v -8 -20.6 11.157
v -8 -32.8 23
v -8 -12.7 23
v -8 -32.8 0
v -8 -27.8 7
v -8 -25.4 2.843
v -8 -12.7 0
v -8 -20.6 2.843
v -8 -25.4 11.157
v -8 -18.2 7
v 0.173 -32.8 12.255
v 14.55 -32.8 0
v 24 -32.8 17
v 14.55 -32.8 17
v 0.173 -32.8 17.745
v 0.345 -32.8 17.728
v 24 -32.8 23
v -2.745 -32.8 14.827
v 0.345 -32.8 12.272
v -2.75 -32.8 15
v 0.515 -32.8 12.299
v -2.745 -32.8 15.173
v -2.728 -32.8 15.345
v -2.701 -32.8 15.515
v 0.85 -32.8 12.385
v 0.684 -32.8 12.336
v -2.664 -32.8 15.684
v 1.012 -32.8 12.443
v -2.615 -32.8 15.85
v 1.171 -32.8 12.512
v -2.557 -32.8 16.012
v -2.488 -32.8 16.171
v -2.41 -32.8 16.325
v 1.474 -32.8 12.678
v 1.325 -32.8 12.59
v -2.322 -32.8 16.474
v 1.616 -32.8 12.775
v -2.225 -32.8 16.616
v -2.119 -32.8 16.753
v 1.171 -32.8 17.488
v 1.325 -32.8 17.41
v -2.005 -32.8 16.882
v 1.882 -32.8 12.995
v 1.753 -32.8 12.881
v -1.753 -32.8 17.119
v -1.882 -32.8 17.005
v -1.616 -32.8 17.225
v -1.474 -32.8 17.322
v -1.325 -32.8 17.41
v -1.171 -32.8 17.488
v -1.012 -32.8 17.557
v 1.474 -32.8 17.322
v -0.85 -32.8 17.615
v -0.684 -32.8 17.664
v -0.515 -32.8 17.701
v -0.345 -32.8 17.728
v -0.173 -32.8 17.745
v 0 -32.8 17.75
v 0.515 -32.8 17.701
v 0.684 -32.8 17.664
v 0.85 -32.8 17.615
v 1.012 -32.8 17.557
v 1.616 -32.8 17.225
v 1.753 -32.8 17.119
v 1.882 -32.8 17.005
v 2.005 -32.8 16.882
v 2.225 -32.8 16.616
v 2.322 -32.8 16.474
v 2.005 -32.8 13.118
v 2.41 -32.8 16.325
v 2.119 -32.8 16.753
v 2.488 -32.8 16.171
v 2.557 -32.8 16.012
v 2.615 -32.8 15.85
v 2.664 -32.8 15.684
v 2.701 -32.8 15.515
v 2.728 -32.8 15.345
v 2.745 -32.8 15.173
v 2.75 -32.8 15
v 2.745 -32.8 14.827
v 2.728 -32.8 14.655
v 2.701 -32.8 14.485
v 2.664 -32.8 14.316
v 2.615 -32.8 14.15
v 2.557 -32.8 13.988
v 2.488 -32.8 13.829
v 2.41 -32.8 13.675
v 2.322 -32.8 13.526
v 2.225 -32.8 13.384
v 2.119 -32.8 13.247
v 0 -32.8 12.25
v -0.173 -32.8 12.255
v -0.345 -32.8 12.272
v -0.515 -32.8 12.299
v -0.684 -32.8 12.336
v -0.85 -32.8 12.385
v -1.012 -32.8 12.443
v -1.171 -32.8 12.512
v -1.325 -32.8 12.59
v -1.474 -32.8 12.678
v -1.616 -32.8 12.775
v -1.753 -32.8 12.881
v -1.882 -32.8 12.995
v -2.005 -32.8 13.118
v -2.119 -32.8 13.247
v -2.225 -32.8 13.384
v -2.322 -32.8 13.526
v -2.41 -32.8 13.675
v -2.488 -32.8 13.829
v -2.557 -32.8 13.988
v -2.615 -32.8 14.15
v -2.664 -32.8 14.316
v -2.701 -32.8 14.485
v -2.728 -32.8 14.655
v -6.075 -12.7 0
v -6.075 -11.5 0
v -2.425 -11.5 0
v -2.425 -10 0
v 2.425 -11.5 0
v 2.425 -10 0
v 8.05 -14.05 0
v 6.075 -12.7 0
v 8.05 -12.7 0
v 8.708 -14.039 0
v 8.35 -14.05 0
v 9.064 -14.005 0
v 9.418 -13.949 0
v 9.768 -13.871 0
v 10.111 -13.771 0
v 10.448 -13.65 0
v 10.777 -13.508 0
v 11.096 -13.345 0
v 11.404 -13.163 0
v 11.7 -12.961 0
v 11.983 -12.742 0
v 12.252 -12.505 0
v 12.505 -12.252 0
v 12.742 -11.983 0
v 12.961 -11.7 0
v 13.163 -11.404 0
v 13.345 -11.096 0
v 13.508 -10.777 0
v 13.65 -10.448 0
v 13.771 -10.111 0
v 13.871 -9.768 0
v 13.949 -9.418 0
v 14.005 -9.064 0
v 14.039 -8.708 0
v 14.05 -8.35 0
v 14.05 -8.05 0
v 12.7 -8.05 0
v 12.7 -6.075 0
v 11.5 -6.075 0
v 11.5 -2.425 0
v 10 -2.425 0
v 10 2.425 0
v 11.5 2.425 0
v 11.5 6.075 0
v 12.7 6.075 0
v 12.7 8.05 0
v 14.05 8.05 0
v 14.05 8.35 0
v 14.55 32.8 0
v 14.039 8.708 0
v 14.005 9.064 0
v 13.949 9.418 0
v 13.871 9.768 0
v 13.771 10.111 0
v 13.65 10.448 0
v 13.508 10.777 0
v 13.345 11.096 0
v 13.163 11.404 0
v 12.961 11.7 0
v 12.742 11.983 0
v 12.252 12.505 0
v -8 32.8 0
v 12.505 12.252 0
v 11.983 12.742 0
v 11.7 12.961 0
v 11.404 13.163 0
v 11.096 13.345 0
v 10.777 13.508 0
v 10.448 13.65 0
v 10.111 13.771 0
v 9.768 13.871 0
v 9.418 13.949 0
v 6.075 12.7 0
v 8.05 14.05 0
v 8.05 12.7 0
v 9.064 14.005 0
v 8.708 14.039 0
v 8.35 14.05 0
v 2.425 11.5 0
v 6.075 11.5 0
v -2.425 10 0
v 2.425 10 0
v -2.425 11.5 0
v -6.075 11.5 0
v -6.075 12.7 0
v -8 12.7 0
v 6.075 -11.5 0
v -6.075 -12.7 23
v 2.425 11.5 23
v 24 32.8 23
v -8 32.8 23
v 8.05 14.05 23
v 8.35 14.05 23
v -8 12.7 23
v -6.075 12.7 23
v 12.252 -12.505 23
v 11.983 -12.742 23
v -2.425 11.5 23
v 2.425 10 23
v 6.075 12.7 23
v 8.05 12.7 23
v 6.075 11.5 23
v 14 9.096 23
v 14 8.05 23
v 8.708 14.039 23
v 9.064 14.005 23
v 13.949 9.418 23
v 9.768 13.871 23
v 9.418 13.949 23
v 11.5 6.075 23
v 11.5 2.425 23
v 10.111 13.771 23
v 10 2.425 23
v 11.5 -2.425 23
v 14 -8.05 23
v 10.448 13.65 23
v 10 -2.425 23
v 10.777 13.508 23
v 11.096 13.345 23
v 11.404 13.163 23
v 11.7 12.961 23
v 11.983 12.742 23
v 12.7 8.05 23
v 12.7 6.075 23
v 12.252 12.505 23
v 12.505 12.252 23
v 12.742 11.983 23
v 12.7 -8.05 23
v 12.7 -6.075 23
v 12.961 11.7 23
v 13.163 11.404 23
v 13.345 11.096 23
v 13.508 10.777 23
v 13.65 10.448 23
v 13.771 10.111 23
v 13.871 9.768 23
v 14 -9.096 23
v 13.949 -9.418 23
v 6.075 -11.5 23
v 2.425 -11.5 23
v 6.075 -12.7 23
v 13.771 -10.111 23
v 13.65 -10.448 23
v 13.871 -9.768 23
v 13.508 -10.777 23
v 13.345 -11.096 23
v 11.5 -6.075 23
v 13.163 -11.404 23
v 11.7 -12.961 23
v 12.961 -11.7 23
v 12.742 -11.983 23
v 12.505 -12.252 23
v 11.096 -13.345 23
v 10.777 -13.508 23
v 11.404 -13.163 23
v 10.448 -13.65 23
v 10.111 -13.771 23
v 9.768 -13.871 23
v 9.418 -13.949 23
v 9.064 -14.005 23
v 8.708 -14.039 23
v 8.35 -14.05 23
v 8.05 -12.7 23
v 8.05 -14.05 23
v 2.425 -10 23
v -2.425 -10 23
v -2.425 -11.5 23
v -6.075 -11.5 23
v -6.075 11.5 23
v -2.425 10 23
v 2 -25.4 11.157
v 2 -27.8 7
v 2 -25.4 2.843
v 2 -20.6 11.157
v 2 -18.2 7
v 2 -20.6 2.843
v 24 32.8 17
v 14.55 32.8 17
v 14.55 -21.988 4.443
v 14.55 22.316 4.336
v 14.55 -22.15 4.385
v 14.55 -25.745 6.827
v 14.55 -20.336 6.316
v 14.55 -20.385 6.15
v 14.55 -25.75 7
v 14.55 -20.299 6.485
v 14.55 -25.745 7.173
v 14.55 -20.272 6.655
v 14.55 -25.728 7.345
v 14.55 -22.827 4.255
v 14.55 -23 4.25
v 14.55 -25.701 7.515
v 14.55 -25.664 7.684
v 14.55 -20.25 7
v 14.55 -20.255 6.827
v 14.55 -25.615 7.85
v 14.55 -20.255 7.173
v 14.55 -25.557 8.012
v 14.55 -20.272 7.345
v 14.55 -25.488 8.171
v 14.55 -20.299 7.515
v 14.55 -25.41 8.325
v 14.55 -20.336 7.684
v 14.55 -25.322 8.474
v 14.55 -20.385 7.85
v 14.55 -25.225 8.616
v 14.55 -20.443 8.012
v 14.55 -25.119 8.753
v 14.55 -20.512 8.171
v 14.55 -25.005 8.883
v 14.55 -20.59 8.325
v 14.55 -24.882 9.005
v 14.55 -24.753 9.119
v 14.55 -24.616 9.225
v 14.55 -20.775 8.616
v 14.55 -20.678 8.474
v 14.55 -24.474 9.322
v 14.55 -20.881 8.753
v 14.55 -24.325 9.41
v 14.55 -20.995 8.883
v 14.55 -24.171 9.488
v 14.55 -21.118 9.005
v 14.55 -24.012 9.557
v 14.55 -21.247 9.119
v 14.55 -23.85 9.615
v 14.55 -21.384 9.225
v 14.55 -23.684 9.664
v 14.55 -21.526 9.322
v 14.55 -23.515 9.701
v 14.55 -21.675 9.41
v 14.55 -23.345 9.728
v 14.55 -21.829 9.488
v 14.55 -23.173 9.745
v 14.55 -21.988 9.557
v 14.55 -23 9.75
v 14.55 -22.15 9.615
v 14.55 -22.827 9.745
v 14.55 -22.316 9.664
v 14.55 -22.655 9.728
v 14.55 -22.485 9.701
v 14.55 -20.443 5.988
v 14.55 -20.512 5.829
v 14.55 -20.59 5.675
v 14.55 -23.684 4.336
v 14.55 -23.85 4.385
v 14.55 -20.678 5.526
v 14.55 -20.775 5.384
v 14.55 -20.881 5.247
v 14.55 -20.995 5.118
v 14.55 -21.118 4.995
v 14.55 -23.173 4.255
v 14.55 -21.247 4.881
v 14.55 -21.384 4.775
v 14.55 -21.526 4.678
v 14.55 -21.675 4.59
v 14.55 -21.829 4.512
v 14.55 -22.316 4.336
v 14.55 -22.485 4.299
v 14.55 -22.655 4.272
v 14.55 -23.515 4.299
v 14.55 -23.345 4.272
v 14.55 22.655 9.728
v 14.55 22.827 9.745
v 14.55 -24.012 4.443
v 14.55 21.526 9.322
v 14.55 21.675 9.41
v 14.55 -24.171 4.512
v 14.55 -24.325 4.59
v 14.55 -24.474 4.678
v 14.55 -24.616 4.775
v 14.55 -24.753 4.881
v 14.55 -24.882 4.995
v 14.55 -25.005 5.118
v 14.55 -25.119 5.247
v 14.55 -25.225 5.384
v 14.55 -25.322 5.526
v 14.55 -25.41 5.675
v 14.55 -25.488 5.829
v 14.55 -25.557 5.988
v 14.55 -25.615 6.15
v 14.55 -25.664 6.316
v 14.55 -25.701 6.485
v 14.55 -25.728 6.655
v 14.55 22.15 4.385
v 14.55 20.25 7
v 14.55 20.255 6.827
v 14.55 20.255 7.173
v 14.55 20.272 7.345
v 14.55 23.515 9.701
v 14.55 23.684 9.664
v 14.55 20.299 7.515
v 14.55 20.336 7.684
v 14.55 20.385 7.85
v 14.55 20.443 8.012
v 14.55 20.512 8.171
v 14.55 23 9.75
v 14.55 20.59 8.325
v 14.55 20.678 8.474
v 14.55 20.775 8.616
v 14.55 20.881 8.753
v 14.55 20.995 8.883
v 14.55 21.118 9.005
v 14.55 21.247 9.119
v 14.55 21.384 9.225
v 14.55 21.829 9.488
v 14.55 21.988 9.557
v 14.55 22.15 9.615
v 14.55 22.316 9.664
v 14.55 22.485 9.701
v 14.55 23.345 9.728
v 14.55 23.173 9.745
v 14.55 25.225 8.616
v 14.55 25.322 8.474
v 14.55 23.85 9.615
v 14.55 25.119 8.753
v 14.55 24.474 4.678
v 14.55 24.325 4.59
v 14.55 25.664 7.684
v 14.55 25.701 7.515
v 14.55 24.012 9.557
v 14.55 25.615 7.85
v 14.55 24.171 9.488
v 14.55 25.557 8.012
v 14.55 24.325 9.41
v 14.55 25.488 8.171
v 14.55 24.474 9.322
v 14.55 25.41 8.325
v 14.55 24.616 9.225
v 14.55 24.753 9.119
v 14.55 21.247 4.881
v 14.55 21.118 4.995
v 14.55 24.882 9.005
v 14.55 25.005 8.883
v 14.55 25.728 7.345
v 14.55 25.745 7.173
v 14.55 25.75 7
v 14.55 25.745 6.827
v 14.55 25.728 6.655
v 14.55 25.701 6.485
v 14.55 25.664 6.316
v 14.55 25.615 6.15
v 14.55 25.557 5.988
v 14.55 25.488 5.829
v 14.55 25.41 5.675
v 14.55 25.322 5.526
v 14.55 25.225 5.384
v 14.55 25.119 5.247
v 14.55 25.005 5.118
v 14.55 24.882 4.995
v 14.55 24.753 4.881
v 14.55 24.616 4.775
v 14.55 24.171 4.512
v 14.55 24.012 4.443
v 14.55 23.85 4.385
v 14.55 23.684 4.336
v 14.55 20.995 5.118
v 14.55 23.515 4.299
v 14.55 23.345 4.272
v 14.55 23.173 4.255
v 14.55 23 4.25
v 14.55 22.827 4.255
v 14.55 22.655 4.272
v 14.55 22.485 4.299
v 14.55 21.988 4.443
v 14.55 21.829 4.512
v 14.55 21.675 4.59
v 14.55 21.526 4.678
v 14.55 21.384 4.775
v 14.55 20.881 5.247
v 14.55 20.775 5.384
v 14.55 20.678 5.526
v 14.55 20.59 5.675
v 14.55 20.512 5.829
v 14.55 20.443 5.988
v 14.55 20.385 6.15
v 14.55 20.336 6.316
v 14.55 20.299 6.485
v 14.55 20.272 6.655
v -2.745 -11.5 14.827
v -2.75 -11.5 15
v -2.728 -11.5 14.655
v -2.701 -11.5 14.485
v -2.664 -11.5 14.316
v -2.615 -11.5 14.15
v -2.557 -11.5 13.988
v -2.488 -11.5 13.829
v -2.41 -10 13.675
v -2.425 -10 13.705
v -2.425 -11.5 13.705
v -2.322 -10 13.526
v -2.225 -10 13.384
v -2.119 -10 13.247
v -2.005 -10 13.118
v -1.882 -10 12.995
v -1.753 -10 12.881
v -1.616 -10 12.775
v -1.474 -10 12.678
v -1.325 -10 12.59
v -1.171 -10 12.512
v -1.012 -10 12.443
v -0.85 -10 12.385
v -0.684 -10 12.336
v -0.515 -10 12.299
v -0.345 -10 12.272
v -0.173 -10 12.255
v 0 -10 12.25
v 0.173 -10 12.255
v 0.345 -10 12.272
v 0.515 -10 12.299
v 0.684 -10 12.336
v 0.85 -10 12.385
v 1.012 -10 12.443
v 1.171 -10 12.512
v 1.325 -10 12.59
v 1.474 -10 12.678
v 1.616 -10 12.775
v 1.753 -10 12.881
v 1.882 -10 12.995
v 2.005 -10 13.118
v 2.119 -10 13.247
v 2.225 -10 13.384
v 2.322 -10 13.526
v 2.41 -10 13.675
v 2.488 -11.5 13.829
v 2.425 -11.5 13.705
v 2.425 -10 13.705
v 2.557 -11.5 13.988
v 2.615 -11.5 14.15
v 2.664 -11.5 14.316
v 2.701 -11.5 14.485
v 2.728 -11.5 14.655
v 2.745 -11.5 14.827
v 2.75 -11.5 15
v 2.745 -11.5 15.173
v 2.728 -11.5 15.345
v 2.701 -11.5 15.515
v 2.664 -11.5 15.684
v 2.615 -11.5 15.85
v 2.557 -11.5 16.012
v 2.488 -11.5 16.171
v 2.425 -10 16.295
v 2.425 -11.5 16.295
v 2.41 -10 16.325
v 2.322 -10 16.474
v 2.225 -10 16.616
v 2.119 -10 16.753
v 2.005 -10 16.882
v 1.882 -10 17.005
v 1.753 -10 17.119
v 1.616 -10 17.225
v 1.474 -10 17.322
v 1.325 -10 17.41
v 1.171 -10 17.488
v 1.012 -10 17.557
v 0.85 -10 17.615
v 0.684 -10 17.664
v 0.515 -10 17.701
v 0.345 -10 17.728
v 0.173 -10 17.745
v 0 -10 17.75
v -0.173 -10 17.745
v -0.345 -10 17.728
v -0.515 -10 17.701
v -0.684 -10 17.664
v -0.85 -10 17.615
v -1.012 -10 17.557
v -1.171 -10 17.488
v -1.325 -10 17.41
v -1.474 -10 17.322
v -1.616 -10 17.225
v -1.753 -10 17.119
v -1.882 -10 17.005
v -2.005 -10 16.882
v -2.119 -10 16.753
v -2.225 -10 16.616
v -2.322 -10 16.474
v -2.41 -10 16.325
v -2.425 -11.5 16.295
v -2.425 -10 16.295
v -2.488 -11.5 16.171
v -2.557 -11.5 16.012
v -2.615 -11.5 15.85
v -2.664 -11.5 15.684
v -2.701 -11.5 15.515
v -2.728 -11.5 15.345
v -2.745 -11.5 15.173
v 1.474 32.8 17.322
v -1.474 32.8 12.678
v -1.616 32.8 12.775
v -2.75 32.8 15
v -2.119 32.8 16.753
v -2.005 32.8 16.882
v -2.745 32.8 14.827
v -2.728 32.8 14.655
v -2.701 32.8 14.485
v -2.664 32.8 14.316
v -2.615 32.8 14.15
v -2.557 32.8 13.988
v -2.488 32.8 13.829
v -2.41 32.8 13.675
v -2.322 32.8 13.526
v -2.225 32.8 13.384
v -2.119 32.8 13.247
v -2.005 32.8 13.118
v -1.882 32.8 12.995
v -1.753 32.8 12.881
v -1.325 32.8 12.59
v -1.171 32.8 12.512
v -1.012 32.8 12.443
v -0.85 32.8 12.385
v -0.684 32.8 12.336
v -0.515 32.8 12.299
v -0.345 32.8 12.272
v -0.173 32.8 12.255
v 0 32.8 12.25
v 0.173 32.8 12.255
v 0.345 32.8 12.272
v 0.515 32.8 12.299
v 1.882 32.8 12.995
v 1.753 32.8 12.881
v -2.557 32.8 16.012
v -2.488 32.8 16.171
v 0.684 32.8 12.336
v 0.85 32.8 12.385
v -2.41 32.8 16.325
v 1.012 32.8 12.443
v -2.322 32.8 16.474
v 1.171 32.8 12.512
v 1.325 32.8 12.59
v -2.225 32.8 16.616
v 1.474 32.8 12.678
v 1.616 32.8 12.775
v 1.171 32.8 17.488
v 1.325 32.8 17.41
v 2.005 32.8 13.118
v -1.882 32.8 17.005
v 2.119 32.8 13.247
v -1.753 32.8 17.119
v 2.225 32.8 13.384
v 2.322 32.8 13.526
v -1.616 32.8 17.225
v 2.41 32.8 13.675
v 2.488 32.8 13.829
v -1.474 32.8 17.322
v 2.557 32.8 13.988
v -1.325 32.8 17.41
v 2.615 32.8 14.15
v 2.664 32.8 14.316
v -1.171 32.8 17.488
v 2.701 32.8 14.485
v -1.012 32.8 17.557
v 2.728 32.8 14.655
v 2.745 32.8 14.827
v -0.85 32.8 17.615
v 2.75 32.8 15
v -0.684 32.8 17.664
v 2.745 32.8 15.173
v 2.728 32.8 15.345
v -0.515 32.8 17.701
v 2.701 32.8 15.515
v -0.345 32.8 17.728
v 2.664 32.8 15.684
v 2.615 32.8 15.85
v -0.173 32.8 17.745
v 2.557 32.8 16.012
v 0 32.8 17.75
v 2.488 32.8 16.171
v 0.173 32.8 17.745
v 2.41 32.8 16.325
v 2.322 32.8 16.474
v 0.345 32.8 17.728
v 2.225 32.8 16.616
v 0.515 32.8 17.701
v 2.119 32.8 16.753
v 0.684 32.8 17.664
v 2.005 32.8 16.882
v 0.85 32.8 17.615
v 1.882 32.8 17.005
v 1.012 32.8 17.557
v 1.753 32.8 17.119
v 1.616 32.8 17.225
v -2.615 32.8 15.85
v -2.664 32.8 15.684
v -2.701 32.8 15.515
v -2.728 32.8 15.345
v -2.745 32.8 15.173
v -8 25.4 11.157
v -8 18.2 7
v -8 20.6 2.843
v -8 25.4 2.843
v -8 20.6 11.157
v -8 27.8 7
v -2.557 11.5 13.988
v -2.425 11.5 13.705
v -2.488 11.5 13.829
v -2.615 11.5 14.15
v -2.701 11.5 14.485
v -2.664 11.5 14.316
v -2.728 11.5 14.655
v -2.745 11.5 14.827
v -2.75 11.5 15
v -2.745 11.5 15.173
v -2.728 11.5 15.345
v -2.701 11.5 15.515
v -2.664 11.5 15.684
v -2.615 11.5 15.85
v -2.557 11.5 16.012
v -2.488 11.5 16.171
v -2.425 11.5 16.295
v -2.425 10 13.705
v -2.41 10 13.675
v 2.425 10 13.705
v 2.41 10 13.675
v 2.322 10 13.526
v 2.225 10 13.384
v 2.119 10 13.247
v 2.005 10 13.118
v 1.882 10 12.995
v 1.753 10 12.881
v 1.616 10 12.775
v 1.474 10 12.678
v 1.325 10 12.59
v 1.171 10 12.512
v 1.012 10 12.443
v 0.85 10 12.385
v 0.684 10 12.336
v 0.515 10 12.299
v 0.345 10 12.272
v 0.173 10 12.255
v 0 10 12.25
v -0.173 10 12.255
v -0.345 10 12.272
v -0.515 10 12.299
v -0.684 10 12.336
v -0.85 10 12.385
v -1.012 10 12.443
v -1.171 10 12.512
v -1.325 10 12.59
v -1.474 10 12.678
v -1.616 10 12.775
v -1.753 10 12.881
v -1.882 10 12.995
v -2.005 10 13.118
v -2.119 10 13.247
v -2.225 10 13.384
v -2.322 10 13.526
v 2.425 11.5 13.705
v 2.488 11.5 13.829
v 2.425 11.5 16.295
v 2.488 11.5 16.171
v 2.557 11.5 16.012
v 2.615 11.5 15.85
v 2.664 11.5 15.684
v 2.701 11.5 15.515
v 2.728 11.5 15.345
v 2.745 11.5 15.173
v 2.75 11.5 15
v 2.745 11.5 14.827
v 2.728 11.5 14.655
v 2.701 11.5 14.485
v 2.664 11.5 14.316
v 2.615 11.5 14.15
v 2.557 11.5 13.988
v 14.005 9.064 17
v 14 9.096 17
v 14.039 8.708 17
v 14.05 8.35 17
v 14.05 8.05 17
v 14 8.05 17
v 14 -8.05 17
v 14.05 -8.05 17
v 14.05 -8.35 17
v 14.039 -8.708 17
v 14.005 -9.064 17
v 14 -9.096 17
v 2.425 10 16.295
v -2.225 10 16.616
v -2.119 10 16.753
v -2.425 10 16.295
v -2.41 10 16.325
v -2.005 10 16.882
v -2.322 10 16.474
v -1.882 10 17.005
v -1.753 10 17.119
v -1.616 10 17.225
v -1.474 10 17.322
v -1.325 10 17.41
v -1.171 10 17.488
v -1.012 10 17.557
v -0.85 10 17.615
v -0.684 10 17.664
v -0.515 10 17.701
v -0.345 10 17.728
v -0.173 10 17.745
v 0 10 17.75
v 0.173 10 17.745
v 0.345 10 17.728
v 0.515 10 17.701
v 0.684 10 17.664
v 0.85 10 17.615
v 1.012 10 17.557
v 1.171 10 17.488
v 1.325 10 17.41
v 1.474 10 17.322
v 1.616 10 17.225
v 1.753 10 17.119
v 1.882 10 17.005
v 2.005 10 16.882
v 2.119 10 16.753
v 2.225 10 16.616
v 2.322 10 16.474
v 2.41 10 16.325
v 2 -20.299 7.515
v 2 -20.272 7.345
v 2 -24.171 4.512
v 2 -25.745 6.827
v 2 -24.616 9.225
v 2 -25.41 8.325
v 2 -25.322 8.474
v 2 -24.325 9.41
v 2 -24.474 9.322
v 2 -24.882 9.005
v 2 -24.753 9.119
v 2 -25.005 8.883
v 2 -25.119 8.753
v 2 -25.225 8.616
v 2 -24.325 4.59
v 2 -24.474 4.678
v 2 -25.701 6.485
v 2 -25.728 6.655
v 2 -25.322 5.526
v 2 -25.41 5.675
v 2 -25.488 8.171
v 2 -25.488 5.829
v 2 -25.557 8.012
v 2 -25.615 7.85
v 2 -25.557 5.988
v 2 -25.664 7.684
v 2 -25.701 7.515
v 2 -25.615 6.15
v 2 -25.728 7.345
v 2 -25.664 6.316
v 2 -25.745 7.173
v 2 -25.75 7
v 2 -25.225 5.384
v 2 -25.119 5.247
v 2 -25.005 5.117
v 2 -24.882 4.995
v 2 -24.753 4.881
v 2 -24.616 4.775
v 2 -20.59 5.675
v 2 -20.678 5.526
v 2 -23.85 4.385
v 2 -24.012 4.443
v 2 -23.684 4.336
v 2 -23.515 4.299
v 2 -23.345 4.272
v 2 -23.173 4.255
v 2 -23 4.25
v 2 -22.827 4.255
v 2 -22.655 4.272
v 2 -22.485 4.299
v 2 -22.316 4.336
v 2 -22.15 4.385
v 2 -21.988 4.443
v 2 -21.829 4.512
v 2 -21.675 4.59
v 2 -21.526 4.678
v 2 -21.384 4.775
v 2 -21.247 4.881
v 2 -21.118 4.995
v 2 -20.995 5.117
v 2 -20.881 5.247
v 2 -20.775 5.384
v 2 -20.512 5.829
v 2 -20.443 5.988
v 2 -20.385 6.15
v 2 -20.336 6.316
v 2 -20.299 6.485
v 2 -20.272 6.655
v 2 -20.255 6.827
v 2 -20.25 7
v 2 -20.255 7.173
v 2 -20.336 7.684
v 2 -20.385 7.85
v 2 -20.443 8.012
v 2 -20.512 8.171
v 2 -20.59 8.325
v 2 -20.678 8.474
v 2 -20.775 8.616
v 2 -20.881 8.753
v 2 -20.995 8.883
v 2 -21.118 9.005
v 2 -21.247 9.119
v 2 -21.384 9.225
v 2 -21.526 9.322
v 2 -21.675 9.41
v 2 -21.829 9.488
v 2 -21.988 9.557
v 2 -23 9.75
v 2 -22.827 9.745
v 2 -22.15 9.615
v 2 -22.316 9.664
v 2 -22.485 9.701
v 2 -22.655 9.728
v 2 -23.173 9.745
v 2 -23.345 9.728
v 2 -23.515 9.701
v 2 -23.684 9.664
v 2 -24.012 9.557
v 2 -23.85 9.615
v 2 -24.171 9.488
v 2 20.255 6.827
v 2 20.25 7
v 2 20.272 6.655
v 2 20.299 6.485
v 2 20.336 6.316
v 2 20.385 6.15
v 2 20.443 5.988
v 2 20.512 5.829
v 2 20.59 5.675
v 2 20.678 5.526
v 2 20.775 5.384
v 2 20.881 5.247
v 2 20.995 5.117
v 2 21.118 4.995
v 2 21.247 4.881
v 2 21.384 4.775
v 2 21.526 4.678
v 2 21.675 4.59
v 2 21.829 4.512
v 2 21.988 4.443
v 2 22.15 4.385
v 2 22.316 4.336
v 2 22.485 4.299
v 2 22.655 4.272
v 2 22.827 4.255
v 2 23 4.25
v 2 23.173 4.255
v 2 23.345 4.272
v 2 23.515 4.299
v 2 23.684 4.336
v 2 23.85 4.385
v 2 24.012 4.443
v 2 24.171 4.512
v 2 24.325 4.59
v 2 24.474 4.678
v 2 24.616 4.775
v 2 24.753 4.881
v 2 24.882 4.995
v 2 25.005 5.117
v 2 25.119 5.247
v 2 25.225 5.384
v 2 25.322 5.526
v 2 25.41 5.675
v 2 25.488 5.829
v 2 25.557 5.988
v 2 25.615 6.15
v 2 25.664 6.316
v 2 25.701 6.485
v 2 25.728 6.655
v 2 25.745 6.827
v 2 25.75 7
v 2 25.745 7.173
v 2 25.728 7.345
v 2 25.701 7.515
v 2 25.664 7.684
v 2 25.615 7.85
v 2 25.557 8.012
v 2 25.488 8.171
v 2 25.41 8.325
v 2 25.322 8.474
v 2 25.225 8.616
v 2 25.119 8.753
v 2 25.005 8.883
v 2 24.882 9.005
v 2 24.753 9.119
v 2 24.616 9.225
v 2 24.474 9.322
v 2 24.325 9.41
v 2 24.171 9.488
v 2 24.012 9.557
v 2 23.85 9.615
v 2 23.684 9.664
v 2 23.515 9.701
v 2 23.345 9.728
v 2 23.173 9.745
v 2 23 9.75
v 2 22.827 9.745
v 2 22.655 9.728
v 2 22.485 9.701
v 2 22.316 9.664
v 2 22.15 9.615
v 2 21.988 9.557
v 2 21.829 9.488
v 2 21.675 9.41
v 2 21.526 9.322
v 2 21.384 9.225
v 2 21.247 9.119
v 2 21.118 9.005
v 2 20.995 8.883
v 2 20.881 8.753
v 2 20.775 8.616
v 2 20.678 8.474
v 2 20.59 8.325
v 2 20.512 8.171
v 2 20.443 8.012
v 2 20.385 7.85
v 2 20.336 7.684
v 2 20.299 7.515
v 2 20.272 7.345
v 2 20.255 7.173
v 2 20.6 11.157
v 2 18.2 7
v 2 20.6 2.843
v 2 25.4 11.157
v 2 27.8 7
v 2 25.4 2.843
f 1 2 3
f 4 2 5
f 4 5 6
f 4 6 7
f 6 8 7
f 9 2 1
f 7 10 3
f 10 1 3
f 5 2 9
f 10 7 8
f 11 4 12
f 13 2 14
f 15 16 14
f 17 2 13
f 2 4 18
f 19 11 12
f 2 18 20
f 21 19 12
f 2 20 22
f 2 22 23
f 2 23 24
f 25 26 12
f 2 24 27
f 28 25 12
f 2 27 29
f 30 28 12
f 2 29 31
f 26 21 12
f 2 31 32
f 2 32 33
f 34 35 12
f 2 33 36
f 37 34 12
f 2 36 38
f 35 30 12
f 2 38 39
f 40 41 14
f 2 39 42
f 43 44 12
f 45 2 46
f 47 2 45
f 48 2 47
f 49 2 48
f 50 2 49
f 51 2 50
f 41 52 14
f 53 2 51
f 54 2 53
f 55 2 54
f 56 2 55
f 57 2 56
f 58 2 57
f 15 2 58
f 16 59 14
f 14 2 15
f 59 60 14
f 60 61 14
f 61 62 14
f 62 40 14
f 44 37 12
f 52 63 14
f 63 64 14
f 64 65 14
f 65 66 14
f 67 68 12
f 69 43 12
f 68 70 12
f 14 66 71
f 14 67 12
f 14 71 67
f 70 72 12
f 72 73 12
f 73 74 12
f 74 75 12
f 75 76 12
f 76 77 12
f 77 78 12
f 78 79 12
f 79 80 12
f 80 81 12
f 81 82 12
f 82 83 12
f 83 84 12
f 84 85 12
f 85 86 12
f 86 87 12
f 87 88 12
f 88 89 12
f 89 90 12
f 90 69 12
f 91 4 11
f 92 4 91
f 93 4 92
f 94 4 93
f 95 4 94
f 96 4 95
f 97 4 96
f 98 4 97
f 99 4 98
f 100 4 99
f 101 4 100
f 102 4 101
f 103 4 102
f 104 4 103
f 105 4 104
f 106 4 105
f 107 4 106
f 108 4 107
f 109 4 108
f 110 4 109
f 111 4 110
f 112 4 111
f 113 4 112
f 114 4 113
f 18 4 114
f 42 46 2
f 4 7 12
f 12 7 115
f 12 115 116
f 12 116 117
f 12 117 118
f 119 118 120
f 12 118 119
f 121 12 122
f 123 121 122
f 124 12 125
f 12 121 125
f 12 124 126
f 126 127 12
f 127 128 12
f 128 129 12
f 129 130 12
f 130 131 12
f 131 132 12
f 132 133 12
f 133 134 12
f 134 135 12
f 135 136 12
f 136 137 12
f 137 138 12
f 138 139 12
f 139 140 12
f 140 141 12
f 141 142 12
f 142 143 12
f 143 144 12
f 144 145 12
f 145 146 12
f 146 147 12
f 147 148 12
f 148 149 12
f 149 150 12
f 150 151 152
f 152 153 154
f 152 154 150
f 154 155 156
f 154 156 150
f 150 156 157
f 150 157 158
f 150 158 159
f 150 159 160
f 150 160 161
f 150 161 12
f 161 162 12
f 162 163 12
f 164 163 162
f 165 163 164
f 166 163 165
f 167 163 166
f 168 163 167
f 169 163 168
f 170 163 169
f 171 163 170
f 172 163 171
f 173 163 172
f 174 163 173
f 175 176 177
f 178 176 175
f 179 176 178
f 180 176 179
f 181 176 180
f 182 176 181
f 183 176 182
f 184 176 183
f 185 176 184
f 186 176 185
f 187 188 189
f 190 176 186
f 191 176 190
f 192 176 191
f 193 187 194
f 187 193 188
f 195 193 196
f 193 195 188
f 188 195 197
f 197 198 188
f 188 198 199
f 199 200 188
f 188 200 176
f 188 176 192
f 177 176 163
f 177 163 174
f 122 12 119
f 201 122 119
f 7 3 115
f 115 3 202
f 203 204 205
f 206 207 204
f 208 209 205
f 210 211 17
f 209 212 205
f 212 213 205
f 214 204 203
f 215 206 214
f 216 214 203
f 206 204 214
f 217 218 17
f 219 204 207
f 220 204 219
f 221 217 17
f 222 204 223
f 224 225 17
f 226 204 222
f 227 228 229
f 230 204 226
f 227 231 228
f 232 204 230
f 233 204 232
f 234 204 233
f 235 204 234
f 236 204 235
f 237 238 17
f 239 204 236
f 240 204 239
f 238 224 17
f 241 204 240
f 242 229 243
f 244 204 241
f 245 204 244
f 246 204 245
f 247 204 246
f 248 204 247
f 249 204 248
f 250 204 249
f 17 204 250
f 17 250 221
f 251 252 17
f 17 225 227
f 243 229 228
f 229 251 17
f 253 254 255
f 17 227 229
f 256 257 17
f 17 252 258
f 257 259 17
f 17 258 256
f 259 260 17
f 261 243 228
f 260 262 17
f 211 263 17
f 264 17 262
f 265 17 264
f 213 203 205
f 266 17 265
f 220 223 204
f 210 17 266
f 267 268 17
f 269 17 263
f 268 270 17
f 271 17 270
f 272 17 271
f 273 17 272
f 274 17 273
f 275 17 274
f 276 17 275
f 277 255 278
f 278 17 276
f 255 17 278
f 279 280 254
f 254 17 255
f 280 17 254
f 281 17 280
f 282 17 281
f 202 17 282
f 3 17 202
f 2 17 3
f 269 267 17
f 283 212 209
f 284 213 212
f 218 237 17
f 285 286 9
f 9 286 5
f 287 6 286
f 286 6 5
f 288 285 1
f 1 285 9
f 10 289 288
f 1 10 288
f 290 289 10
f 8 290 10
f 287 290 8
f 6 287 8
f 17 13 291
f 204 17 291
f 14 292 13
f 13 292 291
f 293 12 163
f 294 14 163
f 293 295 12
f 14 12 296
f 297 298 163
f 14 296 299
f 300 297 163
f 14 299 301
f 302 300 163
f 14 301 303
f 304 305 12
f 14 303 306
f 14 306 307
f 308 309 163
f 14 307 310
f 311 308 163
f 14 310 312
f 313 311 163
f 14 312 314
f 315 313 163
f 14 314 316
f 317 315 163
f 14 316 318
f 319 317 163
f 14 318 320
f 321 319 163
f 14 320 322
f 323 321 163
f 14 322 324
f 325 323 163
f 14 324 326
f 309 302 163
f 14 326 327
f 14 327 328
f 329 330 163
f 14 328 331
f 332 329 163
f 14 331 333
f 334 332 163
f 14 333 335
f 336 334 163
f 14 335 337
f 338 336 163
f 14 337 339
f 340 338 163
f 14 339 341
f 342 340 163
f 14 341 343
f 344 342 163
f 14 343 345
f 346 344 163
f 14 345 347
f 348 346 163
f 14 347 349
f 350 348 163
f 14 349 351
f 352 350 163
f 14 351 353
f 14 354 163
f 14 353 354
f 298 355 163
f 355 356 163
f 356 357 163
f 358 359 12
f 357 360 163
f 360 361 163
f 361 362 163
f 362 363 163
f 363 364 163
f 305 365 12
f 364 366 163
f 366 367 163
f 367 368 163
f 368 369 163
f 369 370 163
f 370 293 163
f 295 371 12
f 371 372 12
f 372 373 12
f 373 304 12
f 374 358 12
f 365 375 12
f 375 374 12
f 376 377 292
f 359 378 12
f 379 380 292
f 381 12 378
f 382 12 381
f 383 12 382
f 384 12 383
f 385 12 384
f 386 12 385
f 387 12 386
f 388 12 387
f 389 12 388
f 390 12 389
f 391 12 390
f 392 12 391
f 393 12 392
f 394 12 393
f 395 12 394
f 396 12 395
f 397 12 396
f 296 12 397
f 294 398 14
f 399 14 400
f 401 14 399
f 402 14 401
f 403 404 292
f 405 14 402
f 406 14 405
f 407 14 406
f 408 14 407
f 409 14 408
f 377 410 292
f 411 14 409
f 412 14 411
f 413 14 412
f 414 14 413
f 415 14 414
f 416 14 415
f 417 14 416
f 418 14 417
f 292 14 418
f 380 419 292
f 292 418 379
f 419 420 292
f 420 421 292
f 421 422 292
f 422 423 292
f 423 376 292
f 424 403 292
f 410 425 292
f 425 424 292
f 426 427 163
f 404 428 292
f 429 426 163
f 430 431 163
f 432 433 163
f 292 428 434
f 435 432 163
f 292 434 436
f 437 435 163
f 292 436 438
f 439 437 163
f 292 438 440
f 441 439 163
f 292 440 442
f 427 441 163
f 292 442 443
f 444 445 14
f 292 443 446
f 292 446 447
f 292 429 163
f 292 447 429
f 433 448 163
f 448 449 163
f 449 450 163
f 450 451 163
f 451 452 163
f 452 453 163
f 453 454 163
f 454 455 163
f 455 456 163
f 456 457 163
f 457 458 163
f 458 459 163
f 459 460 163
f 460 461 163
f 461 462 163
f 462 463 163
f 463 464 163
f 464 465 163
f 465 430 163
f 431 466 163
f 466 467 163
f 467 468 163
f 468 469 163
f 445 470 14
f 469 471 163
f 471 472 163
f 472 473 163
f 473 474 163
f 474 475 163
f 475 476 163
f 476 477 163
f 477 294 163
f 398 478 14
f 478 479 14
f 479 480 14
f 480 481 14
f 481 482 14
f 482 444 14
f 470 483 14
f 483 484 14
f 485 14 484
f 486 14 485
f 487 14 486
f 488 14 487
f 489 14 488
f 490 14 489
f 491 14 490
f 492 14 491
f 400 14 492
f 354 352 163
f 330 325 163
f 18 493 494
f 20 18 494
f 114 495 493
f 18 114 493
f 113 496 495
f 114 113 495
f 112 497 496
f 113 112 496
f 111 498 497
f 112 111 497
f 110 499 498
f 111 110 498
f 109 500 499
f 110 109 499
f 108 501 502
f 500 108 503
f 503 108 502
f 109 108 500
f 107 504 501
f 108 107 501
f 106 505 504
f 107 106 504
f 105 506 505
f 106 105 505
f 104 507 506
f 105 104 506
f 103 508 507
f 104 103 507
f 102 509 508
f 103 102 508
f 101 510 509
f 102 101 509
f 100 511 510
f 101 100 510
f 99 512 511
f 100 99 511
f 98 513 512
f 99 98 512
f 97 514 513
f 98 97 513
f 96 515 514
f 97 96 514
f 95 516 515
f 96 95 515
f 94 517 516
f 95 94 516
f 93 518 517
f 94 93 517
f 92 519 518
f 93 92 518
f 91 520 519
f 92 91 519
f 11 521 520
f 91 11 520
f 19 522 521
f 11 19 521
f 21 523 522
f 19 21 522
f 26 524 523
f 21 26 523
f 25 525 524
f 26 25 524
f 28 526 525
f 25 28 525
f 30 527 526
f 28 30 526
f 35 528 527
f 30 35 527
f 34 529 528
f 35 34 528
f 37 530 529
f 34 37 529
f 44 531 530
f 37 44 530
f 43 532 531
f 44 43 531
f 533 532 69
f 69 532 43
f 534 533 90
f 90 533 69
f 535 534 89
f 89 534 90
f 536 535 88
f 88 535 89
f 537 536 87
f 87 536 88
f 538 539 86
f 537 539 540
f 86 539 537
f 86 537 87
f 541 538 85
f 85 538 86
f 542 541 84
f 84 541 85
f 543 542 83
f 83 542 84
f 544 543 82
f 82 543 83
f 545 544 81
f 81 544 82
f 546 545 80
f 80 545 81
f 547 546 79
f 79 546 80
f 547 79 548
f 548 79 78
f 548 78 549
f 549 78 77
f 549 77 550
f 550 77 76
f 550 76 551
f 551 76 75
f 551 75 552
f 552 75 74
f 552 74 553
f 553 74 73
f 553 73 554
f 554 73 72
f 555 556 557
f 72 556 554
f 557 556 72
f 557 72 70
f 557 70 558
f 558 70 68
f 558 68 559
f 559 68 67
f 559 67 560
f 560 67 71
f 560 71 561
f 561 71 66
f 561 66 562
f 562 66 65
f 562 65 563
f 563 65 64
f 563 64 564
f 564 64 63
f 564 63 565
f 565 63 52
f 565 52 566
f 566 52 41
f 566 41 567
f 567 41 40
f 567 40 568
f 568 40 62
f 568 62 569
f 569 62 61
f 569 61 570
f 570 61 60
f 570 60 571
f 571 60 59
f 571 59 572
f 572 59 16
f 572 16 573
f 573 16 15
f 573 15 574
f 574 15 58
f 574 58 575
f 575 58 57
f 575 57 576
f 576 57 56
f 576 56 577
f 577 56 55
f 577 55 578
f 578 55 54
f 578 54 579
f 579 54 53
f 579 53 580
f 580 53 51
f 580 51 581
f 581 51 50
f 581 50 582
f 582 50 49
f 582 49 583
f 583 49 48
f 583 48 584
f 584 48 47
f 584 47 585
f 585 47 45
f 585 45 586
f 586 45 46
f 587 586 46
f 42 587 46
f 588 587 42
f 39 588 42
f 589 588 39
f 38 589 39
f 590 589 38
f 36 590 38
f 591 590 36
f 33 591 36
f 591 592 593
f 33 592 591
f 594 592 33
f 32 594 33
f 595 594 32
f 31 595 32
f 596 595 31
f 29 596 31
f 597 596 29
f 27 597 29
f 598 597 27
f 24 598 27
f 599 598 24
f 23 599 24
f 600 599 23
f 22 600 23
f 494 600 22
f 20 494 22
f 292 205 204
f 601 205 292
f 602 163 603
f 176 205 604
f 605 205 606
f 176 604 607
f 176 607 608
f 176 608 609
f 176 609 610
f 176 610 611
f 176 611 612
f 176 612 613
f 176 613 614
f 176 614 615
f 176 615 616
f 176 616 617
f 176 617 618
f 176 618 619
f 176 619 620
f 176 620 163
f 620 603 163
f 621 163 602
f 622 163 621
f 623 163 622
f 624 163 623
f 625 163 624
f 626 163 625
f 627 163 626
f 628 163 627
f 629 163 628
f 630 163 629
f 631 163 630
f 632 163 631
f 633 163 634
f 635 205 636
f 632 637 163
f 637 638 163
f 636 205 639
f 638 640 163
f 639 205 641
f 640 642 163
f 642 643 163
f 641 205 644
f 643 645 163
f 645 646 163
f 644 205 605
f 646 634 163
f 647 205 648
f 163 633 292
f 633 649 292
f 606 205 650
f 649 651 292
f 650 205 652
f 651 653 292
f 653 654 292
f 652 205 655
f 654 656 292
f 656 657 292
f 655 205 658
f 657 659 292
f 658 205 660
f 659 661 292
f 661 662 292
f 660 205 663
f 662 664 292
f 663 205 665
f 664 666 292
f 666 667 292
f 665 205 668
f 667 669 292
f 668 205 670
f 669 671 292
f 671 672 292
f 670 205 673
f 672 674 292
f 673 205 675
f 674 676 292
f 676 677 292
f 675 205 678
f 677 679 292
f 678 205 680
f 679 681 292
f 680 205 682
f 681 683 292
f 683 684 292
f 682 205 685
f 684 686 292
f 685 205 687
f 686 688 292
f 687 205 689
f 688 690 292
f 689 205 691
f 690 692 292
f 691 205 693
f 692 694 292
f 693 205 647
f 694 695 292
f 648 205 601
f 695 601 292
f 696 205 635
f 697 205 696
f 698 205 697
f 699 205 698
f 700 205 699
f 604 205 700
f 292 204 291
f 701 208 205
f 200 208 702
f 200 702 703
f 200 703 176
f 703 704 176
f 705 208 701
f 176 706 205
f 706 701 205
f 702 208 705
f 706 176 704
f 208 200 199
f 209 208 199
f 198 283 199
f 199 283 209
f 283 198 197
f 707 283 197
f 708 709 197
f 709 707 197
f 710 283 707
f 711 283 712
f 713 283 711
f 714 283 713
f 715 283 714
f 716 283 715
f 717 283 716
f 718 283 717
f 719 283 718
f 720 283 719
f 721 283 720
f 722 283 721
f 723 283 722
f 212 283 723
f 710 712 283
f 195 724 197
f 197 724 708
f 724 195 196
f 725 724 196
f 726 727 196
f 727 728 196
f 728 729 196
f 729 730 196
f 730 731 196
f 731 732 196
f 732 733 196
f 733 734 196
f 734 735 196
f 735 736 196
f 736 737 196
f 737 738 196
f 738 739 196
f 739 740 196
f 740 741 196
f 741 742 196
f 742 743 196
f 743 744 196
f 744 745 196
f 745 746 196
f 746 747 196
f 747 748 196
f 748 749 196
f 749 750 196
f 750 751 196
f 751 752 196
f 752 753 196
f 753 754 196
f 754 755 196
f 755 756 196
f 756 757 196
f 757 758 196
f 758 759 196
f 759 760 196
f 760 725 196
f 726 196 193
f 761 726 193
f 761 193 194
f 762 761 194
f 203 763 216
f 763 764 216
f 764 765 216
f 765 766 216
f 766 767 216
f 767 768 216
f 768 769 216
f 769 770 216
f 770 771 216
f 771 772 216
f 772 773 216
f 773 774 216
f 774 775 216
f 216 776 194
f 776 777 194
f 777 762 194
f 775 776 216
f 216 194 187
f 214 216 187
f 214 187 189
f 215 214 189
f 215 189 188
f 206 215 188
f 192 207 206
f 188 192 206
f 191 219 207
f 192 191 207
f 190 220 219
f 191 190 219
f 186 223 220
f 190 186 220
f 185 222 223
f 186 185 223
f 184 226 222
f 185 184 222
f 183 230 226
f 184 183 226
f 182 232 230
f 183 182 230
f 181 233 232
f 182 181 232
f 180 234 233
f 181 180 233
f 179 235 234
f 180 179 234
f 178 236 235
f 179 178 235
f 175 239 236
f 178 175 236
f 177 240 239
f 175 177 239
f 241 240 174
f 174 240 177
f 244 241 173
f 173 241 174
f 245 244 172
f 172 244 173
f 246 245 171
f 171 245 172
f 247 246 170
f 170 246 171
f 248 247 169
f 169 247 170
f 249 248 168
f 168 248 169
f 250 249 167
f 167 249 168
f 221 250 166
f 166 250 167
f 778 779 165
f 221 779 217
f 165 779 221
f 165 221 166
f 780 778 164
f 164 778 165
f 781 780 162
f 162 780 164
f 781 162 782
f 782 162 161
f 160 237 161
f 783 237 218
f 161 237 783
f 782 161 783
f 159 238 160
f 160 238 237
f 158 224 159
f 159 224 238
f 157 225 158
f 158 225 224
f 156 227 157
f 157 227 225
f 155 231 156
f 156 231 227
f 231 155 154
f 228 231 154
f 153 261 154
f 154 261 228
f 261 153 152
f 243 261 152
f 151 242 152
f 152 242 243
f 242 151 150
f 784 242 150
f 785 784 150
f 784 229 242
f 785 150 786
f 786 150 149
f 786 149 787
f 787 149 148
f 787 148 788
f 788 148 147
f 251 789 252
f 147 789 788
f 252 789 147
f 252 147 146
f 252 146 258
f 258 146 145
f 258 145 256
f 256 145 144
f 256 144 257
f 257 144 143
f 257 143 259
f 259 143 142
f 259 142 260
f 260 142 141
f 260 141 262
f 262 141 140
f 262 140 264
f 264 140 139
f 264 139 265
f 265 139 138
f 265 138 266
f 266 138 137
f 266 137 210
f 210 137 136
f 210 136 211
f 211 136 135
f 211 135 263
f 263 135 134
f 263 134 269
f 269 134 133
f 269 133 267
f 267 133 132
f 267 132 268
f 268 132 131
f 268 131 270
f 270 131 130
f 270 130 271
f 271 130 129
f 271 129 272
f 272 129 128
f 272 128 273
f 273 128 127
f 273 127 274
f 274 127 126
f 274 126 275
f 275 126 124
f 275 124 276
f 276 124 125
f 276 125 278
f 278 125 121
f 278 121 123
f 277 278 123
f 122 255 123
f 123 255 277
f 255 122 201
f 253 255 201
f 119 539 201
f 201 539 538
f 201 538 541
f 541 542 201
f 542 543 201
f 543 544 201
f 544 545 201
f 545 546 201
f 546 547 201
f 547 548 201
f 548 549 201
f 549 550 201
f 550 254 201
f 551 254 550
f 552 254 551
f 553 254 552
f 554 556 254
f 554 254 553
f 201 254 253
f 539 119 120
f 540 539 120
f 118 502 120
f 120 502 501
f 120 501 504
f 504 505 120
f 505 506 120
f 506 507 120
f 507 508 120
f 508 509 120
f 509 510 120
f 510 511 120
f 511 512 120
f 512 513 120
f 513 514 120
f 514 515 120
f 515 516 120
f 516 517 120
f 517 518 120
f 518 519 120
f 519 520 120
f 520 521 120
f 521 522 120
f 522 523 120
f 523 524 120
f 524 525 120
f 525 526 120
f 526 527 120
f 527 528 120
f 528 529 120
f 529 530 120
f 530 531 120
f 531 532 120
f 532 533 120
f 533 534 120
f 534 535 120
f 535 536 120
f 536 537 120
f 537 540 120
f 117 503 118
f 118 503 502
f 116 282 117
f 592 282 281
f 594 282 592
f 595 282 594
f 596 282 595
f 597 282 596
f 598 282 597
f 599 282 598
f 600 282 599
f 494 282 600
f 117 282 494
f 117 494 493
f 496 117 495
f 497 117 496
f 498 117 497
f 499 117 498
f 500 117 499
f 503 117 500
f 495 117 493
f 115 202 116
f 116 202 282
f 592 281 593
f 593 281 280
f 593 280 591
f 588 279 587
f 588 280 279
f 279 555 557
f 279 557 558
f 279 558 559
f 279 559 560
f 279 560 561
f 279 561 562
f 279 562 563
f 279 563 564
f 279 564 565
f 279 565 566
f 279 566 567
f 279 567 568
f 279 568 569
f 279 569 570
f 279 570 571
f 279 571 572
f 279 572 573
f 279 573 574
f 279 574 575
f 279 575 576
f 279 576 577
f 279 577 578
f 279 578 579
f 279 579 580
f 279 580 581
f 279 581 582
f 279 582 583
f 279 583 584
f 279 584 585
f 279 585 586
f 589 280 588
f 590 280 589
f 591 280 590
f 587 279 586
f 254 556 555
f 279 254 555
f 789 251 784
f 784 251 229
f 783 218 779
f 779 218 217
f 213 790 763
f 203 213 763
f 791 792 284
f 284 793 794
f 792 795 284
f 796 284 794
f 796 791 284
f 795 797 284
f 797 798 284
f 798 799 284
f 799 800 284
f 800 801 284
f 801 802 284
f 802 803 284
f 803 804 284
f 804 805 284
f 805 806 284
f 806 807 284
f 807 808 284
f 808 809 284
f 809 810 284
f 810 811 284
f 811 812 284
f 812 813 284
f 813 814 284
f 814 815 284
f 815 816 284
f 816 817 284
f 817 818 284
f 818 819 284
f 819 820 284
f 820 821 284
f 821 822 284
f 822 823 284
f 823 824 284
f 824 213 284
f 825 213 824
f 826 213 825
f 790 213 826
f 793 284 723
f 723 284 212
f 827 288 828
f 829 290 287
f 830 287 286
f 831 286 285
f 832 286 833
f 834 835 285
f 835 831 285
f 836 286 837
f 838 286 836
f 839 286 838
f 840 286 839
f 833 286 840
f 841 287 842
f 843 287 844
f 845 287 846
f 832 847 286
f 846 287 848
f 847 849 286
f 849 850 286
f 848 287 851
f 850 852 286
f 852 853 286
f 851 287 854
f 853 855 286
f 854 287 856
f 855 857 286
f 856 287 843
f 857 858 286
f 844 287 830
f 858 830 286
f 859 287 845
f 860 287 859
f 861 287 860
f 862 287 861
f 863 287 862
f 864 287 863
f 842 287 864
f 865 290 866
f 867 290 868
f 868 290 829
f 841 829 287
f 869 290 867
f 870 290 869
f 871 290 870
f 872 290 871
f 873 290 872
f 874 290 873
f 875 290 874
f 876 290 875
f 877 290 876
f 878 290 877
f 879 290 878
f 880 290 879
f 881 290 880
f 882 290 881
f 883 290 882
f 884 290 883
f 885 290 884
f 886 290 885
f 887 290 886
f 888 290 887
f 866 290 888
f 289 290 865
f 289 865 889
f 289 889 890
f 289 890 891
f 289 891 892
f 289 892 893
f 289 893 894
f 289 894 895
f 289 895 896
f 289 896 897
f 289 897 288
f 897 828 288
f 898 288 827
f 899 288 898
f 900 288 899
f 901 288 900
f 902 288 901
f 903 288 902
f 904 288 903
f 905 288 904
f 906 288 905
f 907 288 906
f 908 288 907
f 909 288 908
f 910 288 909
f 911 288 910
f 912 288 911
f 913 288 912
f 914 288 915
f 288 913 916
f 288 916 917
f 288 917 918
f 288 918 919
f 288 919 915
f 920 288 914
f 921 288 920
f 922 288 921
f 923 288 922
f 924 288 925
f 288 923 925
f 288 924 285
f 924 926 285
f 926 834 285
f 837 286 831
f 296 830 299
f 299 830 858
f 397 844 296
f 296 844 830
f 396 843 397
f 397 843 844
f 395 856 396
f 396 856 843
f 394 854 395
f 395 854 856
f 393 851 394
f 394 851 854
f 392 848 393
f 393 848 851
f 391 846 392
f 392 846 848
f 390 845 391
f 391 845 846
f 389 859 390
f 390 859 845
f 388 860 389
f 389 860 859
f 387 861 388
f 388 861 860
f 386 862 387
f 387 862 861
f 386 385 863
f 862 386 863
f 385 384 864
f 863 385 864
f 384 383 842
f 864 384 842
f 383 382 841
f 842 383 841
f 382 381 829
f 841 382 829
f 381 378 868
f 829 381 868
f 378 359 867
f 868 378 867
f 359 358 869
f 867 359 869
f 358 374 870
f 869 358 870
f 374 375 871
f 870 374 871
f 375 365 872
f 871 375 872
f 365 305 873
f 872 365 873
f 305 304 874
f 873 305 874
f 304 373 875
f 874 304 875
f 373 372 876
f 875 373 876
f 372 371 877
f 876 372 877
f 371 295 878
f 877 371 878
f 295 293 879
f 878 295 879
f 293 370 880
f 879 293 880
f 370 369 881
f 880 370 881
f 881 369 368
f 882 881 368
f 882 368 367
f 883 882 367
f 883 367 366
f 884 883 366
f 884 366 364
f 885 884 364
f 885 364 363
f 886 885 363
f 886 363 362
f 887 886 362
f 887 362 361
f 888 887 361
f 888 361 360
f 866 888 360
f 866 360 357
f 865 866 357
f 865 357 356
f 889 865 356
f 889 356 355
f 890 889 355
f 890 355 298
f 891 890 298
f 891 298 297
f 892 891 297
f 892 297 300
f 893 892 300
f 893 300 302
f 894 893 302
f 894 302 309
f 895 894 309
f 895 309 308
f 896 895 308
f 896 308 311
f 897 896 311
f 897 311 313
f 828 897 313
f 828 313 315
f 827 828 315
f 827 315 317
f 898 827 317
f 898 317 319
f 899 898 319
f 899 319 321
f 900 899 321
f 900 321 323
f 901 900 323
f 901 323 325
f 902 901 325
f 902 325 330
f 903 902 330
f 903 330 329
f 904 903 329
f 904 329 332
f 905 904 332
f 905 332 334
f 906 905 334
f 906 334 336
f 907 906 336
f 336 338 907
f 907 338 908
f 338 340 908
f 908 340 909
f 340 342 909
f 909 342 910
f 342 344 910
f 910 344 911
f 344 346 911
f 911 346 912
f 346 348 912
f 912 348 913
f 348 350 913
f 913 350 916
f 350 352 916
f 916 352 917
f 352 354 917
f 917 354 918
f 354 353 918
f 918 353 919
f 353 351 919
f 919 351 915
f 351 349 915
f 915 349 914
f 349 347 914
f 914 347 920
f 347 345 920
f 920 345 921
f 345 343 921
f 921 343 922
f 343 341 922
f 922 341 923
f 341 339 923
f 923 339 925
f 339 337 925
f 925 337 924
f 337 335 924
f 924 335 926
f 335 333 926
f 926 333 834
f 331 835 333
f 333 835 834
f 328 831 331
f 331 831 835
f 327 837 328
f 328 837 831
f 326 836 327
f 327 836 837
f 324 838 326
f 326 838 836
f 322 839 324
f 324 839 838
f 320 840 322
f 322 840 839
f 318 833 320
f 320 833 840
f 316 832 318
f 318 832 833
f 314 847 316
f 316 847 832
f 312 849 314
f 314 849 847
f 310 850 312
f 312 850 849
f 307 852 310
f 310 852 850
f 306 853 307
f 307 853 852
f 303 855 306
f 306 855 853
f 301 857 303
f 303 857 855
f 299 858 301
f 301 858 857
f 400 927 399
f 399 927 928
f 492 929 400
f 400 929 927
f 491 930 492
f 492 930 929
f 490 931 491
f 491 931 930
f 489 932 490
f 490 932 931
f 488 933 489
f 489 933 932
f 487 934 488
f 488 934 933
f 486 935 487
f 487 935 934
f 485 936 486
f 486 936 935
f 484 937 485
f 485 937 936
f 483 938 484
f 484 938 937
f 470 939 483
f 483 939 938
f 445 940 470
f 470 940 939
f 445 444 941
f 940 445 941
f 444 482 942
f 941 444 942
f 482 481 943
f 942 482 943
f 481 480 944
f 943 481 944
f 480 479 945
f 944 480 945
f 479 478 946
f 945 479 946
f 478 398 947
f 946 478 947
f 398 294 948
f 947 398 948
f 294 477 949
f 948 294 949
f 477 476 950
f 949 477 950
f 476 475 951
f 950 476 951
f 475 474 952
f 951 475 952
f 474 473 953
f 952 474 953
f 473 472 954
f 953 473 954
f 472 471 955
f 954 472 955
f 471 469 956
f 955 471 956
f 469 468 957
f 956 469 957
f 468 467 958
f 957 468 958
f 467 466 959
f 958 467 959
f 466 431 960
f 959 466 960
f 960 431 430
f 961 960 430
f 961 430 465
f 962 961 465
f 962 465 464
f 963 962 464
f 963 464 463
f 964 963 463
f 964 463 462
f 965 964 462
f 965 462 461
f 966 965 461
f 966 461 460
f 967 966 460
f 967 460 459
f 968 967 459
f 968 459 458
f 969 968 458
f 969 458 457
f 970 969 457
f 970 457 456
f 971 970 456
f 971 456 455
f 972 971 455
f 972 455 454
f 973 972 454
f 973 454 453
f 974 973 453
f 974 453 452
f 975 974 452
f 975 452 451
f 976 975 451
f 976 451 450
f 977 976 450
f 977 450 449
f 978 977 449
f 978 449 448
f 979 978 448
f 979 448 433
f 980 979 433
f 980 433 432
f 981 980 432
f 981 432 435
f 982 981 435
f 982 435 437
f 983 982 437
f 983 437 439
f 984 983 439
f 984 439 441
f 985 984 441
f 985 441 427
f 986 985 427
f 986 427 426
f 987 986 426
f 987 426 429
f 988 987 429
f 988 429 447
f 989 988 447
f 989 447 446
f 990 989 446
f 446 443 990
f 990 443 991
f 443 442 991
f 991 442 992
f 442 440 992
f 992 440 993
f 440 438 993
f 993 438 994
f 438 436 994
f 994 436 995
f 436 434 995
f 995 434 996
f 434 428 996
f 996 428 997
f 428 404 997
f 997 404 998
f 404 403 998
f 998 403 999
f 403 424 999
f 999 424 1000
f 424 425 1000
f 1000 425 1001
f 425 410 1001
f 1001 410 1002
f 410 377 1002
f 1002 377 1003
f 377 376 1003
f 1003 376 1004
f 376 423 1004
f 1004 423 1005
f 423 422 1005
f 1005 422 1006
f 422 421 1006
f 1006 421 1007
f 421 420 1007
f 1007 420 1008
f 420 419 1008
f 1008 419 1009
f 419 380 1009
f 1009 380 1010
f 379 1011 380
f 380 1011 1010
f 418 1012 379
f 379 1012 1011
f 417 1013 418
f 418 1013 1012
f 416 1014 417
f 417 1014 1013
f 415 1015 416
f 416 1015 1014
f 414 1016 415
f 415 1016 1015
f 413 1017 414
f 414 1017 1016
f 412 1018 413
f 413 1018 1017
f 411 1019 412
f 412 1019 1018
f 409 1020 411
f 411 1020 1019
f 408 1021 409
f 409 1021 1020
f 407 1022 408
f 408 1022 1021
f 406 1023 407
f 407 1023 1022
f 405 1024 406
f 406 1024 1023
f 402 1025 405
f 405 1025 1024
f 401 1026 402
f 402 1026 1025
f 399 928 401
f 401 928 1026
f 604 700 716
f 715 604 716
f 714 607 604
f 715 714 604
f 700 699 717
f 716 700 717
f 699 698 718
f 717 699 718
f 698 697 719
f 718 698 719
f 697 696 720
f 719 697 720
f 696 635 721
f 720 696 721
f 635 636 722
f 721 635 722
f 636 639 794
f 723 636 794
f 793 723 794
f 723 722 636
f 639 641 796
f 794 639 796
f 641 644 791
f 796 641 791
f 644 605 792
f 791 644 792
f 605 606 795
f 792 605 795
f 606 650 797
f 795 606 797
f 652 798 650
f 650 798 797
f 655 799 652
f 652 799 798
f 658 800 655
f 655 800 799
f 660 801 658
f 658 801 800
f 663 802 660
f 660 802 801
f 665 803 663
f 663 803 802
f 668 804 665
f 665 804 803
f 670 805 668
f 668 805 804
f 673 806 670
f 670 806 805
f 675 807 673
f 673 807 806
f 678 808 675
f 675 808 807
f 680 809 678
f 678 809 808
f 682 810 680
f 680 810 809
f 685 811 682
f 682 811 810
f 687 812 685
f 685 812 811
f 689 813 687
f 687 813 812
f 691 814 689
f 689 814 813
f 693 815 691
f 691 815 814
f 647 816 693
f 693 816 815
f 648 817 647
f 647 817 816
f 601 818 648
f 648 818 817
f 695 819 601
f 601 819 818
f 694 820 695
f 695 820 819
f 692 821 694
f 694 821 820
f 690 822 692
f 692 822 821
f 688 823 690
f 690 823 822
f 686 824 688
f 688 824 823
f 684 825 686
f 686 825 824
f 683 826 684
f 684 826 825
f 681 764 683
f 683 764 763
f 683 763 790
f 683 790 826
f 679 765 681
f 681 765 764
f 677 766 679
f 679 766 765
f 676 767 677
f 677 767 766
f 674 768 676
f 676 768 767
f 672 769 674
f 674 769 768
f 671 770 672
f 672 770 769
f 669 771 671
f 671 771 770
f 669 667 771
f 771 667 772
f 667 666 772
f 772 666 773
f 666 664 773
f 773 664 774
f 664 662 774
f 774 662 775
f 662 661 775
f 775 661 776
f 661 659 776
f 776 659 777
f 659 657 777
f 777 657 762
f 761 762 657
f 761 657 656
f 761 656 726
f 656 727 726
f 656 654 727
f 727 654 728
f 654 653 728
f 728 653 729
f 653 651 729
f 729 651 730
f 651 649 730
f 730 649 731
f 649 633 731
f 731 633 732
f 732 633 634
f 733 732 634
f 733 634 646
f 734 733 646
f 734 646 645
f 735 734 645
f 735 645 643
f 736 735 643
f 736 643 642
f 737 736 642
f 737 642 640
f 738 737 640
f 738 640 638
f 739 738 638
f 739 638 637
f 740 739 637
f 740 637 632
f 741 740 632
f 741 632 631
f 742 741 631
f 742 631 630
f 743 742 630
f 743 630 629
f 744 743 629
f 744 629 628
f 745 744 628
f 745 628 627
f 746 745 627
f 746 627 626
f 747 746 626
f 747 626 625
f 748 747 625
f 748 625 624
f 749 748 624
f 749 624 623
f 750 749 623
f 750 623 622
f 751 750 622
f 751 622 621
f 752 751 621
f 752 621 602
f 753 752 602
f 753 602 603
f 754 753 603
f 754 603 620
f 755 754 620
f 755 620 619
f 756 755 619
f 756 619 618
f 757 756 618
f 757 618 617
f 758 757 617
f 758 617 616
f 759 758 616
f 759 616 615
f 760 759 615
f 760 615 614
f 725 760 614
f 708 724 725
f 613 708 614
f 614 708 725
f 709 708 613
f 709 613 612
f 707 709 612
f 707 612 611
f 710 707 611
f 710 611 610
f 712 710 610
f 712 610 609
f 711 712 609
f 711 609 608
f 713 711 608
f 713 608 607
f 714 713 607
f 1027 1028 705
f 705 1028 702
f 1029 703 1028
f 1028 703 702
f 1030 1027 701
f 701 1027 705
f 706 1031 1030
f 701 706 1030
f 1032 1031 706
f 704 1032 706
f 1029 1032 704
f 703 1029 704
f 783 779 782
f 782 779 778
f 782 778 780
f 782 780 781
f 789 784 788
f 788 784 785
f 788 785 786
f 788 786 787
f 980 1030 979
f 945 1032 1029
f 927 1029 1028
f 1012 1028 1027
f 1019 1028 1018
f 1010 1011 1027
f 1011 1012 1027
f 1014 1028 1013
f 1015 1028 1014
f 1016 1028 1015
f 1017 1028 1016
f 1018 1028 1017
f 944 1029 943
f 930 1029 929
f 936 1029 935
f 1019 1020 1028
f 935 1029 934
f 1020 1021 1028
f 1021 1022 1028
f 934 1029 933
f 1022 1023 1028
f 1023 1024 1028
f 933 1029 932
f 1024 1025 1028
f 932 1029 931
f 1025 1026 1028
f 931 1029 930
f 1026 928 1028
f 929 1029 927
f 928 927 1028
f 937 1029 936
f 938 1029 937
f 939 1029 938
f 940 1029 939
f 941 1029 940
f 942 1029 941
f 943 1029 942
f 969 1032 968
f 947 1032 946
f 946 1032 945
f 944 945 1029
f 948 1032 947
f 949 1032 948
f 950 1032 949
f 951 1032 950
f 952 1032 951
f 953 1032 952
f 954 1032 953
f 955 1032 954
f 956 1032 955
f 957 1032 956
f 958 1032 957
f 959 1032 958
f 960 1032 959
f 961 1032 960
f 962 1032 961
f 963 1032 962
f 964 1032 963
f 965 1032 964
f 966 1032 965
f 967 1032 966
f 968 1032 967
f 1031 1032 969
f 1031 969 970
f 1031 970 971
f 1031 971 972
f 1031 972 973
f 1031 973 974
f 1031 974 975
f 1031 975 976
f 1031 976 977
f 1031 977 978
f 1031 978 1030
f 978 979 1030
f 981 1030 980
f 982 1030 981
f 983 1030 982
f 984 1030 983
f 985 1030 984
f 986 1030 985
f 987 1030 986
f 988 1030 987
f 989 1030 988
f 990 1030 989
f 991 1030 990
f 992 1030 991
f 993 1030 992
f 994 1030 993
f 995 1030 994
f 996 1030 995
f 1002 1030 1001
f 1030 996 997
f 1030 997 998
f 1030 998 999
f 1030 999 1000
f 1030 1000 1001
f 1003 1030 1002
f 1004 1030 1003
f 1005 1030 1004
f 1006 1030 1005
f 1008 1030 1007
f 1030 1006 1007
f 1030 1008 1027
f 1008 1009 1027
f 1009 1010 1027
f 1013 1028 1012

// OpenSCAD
// file: frame_profile.scad
frame_profile(h = 5);
/*
difference()
{
	translate([5, 0, 0]) cube([26, 35, 5], center = true);
	translate([0, 0, -10 / 2]) frame_profile(10);
}
*/

module frame_profile(h)
{
	$fn = 100;

	// p = profile
	p_width = 27.5 + 0.2;
	p_corner_r = 5.7;
	p_first_step_width = 16.3 - 0.2;
	p_first_step_height = 1.15;
	p_second_step_width = 12.35 - 0.2;
	p_second_step_height = 1.2;
	p_third_step_width = 5.05 - 0.2;
	p_third_step_height = 1.5; // 6.15;

	difference()
	{
		hull()
		{
			translate([(p_width / 2) - p_corner_r + 0.2, (p_width / 2) - p_corner_r + 0.2, 0])
				cylinder(r = p_corner_r, h = h);
	
			translate([(p_width / 2) - p_corner_r + 0.2, -((p_width / 2) - p_corner_r + 0.2), 0])
				cylinder(r = p_corner_r, h = h);
	
			translate([-((p_width / 2) - p_corner_r + 0.2), (p_width / 2) - p_corner_r + 0.2, 0])
				cylinder(r = p_corner_r, h = h);
	
			translate(-[(p_width / 2) - p_corner_r + 0.2, (p_width / 2) - p_corner_r + 0.2, 0])
				cylinder(r = p_corner_r, h = h);
		}

		for( i = [0 : 1 : 3] )
		{
			rotate(i * 90, v = [0, 0, 1])
				translate([(p_width / 2) - p_first_step_height, -(p_first_step_width / 2), -1])
					cube([p_first_step_width, p_first_step_width, (h + 2)]);

			rotate(i * 90, v = [0, 0, 1])
				translate([(p_width / 2) - p_second_step_height - p_first_step_height, -(p_second_step_width / 2), -1])
					cube([p_second_step_width, p_second_step_width, (h + 2)]);

			rotate(i * 90, v = [0, 0, 1])
				translate([(p_width / 2) - p_third_step_height - p_second_step_height - p_first_step_height, -(p_third_step_width / 2), -1])
					cube([p_third_step_width, p_third_step_width, (h + 2)]);
		}
	}
}
// file: frame_clamp.scad
use <frame_profile.scad>;

frame_clamp(1,5,10);

module frame_clamp(dx=1,dy=1,z=5) {

    difference() {
        translate([-8,-14.05-dy,0]) cube([22.05+dx, 28.1+2*dy, z]);
        translate([0,0,-1]) frame_profile(z+2);
        translate([0,0,z/2]) rotate([90,0,0]) cylinder(r=5.5/2,h=28.1+2*dy+2,center=true,$fn=100);
    }

}
// main file
use <frame_clamp.scad>;

top_holder();

module top_holder() {

	difference() {
		union() {
	    		difference() {
	        		frame_clamp(0.5, (59.6+6-28.1)/2, 30);
	        		translate([0,(39+7)/2,7]) rotate([0,90,0]) cylinder(r=5.5/2,h=71,$fn=100,center=true);
	        		translate([0,-(39+7)/2,7]) rotate([0,90,0]) cylinder(r=5.5/2,h=71,$fn=100,center=true);
	
	        		// nut holders, for M5 nuts
	        		translate([-9,(39+7)/2,7]) rotate([30,0,0]) rotate([0,90,0]) cylinder(r=9.6/2,h=11,$fn=6);
	        		translate([-9,-(39+7)/2,7]) rotate([30,0,0]) rotate([0,90,0]) cylinder(r=9.6/2,h=11,$fn=6);
			}
	
			translate([14, -((59.6 + 6)/2), 17]) cube([10, 59.6 + 6, 13]);
	    	}

		translate([0, 0, 73]) cube(100, center = true);
	}
}
